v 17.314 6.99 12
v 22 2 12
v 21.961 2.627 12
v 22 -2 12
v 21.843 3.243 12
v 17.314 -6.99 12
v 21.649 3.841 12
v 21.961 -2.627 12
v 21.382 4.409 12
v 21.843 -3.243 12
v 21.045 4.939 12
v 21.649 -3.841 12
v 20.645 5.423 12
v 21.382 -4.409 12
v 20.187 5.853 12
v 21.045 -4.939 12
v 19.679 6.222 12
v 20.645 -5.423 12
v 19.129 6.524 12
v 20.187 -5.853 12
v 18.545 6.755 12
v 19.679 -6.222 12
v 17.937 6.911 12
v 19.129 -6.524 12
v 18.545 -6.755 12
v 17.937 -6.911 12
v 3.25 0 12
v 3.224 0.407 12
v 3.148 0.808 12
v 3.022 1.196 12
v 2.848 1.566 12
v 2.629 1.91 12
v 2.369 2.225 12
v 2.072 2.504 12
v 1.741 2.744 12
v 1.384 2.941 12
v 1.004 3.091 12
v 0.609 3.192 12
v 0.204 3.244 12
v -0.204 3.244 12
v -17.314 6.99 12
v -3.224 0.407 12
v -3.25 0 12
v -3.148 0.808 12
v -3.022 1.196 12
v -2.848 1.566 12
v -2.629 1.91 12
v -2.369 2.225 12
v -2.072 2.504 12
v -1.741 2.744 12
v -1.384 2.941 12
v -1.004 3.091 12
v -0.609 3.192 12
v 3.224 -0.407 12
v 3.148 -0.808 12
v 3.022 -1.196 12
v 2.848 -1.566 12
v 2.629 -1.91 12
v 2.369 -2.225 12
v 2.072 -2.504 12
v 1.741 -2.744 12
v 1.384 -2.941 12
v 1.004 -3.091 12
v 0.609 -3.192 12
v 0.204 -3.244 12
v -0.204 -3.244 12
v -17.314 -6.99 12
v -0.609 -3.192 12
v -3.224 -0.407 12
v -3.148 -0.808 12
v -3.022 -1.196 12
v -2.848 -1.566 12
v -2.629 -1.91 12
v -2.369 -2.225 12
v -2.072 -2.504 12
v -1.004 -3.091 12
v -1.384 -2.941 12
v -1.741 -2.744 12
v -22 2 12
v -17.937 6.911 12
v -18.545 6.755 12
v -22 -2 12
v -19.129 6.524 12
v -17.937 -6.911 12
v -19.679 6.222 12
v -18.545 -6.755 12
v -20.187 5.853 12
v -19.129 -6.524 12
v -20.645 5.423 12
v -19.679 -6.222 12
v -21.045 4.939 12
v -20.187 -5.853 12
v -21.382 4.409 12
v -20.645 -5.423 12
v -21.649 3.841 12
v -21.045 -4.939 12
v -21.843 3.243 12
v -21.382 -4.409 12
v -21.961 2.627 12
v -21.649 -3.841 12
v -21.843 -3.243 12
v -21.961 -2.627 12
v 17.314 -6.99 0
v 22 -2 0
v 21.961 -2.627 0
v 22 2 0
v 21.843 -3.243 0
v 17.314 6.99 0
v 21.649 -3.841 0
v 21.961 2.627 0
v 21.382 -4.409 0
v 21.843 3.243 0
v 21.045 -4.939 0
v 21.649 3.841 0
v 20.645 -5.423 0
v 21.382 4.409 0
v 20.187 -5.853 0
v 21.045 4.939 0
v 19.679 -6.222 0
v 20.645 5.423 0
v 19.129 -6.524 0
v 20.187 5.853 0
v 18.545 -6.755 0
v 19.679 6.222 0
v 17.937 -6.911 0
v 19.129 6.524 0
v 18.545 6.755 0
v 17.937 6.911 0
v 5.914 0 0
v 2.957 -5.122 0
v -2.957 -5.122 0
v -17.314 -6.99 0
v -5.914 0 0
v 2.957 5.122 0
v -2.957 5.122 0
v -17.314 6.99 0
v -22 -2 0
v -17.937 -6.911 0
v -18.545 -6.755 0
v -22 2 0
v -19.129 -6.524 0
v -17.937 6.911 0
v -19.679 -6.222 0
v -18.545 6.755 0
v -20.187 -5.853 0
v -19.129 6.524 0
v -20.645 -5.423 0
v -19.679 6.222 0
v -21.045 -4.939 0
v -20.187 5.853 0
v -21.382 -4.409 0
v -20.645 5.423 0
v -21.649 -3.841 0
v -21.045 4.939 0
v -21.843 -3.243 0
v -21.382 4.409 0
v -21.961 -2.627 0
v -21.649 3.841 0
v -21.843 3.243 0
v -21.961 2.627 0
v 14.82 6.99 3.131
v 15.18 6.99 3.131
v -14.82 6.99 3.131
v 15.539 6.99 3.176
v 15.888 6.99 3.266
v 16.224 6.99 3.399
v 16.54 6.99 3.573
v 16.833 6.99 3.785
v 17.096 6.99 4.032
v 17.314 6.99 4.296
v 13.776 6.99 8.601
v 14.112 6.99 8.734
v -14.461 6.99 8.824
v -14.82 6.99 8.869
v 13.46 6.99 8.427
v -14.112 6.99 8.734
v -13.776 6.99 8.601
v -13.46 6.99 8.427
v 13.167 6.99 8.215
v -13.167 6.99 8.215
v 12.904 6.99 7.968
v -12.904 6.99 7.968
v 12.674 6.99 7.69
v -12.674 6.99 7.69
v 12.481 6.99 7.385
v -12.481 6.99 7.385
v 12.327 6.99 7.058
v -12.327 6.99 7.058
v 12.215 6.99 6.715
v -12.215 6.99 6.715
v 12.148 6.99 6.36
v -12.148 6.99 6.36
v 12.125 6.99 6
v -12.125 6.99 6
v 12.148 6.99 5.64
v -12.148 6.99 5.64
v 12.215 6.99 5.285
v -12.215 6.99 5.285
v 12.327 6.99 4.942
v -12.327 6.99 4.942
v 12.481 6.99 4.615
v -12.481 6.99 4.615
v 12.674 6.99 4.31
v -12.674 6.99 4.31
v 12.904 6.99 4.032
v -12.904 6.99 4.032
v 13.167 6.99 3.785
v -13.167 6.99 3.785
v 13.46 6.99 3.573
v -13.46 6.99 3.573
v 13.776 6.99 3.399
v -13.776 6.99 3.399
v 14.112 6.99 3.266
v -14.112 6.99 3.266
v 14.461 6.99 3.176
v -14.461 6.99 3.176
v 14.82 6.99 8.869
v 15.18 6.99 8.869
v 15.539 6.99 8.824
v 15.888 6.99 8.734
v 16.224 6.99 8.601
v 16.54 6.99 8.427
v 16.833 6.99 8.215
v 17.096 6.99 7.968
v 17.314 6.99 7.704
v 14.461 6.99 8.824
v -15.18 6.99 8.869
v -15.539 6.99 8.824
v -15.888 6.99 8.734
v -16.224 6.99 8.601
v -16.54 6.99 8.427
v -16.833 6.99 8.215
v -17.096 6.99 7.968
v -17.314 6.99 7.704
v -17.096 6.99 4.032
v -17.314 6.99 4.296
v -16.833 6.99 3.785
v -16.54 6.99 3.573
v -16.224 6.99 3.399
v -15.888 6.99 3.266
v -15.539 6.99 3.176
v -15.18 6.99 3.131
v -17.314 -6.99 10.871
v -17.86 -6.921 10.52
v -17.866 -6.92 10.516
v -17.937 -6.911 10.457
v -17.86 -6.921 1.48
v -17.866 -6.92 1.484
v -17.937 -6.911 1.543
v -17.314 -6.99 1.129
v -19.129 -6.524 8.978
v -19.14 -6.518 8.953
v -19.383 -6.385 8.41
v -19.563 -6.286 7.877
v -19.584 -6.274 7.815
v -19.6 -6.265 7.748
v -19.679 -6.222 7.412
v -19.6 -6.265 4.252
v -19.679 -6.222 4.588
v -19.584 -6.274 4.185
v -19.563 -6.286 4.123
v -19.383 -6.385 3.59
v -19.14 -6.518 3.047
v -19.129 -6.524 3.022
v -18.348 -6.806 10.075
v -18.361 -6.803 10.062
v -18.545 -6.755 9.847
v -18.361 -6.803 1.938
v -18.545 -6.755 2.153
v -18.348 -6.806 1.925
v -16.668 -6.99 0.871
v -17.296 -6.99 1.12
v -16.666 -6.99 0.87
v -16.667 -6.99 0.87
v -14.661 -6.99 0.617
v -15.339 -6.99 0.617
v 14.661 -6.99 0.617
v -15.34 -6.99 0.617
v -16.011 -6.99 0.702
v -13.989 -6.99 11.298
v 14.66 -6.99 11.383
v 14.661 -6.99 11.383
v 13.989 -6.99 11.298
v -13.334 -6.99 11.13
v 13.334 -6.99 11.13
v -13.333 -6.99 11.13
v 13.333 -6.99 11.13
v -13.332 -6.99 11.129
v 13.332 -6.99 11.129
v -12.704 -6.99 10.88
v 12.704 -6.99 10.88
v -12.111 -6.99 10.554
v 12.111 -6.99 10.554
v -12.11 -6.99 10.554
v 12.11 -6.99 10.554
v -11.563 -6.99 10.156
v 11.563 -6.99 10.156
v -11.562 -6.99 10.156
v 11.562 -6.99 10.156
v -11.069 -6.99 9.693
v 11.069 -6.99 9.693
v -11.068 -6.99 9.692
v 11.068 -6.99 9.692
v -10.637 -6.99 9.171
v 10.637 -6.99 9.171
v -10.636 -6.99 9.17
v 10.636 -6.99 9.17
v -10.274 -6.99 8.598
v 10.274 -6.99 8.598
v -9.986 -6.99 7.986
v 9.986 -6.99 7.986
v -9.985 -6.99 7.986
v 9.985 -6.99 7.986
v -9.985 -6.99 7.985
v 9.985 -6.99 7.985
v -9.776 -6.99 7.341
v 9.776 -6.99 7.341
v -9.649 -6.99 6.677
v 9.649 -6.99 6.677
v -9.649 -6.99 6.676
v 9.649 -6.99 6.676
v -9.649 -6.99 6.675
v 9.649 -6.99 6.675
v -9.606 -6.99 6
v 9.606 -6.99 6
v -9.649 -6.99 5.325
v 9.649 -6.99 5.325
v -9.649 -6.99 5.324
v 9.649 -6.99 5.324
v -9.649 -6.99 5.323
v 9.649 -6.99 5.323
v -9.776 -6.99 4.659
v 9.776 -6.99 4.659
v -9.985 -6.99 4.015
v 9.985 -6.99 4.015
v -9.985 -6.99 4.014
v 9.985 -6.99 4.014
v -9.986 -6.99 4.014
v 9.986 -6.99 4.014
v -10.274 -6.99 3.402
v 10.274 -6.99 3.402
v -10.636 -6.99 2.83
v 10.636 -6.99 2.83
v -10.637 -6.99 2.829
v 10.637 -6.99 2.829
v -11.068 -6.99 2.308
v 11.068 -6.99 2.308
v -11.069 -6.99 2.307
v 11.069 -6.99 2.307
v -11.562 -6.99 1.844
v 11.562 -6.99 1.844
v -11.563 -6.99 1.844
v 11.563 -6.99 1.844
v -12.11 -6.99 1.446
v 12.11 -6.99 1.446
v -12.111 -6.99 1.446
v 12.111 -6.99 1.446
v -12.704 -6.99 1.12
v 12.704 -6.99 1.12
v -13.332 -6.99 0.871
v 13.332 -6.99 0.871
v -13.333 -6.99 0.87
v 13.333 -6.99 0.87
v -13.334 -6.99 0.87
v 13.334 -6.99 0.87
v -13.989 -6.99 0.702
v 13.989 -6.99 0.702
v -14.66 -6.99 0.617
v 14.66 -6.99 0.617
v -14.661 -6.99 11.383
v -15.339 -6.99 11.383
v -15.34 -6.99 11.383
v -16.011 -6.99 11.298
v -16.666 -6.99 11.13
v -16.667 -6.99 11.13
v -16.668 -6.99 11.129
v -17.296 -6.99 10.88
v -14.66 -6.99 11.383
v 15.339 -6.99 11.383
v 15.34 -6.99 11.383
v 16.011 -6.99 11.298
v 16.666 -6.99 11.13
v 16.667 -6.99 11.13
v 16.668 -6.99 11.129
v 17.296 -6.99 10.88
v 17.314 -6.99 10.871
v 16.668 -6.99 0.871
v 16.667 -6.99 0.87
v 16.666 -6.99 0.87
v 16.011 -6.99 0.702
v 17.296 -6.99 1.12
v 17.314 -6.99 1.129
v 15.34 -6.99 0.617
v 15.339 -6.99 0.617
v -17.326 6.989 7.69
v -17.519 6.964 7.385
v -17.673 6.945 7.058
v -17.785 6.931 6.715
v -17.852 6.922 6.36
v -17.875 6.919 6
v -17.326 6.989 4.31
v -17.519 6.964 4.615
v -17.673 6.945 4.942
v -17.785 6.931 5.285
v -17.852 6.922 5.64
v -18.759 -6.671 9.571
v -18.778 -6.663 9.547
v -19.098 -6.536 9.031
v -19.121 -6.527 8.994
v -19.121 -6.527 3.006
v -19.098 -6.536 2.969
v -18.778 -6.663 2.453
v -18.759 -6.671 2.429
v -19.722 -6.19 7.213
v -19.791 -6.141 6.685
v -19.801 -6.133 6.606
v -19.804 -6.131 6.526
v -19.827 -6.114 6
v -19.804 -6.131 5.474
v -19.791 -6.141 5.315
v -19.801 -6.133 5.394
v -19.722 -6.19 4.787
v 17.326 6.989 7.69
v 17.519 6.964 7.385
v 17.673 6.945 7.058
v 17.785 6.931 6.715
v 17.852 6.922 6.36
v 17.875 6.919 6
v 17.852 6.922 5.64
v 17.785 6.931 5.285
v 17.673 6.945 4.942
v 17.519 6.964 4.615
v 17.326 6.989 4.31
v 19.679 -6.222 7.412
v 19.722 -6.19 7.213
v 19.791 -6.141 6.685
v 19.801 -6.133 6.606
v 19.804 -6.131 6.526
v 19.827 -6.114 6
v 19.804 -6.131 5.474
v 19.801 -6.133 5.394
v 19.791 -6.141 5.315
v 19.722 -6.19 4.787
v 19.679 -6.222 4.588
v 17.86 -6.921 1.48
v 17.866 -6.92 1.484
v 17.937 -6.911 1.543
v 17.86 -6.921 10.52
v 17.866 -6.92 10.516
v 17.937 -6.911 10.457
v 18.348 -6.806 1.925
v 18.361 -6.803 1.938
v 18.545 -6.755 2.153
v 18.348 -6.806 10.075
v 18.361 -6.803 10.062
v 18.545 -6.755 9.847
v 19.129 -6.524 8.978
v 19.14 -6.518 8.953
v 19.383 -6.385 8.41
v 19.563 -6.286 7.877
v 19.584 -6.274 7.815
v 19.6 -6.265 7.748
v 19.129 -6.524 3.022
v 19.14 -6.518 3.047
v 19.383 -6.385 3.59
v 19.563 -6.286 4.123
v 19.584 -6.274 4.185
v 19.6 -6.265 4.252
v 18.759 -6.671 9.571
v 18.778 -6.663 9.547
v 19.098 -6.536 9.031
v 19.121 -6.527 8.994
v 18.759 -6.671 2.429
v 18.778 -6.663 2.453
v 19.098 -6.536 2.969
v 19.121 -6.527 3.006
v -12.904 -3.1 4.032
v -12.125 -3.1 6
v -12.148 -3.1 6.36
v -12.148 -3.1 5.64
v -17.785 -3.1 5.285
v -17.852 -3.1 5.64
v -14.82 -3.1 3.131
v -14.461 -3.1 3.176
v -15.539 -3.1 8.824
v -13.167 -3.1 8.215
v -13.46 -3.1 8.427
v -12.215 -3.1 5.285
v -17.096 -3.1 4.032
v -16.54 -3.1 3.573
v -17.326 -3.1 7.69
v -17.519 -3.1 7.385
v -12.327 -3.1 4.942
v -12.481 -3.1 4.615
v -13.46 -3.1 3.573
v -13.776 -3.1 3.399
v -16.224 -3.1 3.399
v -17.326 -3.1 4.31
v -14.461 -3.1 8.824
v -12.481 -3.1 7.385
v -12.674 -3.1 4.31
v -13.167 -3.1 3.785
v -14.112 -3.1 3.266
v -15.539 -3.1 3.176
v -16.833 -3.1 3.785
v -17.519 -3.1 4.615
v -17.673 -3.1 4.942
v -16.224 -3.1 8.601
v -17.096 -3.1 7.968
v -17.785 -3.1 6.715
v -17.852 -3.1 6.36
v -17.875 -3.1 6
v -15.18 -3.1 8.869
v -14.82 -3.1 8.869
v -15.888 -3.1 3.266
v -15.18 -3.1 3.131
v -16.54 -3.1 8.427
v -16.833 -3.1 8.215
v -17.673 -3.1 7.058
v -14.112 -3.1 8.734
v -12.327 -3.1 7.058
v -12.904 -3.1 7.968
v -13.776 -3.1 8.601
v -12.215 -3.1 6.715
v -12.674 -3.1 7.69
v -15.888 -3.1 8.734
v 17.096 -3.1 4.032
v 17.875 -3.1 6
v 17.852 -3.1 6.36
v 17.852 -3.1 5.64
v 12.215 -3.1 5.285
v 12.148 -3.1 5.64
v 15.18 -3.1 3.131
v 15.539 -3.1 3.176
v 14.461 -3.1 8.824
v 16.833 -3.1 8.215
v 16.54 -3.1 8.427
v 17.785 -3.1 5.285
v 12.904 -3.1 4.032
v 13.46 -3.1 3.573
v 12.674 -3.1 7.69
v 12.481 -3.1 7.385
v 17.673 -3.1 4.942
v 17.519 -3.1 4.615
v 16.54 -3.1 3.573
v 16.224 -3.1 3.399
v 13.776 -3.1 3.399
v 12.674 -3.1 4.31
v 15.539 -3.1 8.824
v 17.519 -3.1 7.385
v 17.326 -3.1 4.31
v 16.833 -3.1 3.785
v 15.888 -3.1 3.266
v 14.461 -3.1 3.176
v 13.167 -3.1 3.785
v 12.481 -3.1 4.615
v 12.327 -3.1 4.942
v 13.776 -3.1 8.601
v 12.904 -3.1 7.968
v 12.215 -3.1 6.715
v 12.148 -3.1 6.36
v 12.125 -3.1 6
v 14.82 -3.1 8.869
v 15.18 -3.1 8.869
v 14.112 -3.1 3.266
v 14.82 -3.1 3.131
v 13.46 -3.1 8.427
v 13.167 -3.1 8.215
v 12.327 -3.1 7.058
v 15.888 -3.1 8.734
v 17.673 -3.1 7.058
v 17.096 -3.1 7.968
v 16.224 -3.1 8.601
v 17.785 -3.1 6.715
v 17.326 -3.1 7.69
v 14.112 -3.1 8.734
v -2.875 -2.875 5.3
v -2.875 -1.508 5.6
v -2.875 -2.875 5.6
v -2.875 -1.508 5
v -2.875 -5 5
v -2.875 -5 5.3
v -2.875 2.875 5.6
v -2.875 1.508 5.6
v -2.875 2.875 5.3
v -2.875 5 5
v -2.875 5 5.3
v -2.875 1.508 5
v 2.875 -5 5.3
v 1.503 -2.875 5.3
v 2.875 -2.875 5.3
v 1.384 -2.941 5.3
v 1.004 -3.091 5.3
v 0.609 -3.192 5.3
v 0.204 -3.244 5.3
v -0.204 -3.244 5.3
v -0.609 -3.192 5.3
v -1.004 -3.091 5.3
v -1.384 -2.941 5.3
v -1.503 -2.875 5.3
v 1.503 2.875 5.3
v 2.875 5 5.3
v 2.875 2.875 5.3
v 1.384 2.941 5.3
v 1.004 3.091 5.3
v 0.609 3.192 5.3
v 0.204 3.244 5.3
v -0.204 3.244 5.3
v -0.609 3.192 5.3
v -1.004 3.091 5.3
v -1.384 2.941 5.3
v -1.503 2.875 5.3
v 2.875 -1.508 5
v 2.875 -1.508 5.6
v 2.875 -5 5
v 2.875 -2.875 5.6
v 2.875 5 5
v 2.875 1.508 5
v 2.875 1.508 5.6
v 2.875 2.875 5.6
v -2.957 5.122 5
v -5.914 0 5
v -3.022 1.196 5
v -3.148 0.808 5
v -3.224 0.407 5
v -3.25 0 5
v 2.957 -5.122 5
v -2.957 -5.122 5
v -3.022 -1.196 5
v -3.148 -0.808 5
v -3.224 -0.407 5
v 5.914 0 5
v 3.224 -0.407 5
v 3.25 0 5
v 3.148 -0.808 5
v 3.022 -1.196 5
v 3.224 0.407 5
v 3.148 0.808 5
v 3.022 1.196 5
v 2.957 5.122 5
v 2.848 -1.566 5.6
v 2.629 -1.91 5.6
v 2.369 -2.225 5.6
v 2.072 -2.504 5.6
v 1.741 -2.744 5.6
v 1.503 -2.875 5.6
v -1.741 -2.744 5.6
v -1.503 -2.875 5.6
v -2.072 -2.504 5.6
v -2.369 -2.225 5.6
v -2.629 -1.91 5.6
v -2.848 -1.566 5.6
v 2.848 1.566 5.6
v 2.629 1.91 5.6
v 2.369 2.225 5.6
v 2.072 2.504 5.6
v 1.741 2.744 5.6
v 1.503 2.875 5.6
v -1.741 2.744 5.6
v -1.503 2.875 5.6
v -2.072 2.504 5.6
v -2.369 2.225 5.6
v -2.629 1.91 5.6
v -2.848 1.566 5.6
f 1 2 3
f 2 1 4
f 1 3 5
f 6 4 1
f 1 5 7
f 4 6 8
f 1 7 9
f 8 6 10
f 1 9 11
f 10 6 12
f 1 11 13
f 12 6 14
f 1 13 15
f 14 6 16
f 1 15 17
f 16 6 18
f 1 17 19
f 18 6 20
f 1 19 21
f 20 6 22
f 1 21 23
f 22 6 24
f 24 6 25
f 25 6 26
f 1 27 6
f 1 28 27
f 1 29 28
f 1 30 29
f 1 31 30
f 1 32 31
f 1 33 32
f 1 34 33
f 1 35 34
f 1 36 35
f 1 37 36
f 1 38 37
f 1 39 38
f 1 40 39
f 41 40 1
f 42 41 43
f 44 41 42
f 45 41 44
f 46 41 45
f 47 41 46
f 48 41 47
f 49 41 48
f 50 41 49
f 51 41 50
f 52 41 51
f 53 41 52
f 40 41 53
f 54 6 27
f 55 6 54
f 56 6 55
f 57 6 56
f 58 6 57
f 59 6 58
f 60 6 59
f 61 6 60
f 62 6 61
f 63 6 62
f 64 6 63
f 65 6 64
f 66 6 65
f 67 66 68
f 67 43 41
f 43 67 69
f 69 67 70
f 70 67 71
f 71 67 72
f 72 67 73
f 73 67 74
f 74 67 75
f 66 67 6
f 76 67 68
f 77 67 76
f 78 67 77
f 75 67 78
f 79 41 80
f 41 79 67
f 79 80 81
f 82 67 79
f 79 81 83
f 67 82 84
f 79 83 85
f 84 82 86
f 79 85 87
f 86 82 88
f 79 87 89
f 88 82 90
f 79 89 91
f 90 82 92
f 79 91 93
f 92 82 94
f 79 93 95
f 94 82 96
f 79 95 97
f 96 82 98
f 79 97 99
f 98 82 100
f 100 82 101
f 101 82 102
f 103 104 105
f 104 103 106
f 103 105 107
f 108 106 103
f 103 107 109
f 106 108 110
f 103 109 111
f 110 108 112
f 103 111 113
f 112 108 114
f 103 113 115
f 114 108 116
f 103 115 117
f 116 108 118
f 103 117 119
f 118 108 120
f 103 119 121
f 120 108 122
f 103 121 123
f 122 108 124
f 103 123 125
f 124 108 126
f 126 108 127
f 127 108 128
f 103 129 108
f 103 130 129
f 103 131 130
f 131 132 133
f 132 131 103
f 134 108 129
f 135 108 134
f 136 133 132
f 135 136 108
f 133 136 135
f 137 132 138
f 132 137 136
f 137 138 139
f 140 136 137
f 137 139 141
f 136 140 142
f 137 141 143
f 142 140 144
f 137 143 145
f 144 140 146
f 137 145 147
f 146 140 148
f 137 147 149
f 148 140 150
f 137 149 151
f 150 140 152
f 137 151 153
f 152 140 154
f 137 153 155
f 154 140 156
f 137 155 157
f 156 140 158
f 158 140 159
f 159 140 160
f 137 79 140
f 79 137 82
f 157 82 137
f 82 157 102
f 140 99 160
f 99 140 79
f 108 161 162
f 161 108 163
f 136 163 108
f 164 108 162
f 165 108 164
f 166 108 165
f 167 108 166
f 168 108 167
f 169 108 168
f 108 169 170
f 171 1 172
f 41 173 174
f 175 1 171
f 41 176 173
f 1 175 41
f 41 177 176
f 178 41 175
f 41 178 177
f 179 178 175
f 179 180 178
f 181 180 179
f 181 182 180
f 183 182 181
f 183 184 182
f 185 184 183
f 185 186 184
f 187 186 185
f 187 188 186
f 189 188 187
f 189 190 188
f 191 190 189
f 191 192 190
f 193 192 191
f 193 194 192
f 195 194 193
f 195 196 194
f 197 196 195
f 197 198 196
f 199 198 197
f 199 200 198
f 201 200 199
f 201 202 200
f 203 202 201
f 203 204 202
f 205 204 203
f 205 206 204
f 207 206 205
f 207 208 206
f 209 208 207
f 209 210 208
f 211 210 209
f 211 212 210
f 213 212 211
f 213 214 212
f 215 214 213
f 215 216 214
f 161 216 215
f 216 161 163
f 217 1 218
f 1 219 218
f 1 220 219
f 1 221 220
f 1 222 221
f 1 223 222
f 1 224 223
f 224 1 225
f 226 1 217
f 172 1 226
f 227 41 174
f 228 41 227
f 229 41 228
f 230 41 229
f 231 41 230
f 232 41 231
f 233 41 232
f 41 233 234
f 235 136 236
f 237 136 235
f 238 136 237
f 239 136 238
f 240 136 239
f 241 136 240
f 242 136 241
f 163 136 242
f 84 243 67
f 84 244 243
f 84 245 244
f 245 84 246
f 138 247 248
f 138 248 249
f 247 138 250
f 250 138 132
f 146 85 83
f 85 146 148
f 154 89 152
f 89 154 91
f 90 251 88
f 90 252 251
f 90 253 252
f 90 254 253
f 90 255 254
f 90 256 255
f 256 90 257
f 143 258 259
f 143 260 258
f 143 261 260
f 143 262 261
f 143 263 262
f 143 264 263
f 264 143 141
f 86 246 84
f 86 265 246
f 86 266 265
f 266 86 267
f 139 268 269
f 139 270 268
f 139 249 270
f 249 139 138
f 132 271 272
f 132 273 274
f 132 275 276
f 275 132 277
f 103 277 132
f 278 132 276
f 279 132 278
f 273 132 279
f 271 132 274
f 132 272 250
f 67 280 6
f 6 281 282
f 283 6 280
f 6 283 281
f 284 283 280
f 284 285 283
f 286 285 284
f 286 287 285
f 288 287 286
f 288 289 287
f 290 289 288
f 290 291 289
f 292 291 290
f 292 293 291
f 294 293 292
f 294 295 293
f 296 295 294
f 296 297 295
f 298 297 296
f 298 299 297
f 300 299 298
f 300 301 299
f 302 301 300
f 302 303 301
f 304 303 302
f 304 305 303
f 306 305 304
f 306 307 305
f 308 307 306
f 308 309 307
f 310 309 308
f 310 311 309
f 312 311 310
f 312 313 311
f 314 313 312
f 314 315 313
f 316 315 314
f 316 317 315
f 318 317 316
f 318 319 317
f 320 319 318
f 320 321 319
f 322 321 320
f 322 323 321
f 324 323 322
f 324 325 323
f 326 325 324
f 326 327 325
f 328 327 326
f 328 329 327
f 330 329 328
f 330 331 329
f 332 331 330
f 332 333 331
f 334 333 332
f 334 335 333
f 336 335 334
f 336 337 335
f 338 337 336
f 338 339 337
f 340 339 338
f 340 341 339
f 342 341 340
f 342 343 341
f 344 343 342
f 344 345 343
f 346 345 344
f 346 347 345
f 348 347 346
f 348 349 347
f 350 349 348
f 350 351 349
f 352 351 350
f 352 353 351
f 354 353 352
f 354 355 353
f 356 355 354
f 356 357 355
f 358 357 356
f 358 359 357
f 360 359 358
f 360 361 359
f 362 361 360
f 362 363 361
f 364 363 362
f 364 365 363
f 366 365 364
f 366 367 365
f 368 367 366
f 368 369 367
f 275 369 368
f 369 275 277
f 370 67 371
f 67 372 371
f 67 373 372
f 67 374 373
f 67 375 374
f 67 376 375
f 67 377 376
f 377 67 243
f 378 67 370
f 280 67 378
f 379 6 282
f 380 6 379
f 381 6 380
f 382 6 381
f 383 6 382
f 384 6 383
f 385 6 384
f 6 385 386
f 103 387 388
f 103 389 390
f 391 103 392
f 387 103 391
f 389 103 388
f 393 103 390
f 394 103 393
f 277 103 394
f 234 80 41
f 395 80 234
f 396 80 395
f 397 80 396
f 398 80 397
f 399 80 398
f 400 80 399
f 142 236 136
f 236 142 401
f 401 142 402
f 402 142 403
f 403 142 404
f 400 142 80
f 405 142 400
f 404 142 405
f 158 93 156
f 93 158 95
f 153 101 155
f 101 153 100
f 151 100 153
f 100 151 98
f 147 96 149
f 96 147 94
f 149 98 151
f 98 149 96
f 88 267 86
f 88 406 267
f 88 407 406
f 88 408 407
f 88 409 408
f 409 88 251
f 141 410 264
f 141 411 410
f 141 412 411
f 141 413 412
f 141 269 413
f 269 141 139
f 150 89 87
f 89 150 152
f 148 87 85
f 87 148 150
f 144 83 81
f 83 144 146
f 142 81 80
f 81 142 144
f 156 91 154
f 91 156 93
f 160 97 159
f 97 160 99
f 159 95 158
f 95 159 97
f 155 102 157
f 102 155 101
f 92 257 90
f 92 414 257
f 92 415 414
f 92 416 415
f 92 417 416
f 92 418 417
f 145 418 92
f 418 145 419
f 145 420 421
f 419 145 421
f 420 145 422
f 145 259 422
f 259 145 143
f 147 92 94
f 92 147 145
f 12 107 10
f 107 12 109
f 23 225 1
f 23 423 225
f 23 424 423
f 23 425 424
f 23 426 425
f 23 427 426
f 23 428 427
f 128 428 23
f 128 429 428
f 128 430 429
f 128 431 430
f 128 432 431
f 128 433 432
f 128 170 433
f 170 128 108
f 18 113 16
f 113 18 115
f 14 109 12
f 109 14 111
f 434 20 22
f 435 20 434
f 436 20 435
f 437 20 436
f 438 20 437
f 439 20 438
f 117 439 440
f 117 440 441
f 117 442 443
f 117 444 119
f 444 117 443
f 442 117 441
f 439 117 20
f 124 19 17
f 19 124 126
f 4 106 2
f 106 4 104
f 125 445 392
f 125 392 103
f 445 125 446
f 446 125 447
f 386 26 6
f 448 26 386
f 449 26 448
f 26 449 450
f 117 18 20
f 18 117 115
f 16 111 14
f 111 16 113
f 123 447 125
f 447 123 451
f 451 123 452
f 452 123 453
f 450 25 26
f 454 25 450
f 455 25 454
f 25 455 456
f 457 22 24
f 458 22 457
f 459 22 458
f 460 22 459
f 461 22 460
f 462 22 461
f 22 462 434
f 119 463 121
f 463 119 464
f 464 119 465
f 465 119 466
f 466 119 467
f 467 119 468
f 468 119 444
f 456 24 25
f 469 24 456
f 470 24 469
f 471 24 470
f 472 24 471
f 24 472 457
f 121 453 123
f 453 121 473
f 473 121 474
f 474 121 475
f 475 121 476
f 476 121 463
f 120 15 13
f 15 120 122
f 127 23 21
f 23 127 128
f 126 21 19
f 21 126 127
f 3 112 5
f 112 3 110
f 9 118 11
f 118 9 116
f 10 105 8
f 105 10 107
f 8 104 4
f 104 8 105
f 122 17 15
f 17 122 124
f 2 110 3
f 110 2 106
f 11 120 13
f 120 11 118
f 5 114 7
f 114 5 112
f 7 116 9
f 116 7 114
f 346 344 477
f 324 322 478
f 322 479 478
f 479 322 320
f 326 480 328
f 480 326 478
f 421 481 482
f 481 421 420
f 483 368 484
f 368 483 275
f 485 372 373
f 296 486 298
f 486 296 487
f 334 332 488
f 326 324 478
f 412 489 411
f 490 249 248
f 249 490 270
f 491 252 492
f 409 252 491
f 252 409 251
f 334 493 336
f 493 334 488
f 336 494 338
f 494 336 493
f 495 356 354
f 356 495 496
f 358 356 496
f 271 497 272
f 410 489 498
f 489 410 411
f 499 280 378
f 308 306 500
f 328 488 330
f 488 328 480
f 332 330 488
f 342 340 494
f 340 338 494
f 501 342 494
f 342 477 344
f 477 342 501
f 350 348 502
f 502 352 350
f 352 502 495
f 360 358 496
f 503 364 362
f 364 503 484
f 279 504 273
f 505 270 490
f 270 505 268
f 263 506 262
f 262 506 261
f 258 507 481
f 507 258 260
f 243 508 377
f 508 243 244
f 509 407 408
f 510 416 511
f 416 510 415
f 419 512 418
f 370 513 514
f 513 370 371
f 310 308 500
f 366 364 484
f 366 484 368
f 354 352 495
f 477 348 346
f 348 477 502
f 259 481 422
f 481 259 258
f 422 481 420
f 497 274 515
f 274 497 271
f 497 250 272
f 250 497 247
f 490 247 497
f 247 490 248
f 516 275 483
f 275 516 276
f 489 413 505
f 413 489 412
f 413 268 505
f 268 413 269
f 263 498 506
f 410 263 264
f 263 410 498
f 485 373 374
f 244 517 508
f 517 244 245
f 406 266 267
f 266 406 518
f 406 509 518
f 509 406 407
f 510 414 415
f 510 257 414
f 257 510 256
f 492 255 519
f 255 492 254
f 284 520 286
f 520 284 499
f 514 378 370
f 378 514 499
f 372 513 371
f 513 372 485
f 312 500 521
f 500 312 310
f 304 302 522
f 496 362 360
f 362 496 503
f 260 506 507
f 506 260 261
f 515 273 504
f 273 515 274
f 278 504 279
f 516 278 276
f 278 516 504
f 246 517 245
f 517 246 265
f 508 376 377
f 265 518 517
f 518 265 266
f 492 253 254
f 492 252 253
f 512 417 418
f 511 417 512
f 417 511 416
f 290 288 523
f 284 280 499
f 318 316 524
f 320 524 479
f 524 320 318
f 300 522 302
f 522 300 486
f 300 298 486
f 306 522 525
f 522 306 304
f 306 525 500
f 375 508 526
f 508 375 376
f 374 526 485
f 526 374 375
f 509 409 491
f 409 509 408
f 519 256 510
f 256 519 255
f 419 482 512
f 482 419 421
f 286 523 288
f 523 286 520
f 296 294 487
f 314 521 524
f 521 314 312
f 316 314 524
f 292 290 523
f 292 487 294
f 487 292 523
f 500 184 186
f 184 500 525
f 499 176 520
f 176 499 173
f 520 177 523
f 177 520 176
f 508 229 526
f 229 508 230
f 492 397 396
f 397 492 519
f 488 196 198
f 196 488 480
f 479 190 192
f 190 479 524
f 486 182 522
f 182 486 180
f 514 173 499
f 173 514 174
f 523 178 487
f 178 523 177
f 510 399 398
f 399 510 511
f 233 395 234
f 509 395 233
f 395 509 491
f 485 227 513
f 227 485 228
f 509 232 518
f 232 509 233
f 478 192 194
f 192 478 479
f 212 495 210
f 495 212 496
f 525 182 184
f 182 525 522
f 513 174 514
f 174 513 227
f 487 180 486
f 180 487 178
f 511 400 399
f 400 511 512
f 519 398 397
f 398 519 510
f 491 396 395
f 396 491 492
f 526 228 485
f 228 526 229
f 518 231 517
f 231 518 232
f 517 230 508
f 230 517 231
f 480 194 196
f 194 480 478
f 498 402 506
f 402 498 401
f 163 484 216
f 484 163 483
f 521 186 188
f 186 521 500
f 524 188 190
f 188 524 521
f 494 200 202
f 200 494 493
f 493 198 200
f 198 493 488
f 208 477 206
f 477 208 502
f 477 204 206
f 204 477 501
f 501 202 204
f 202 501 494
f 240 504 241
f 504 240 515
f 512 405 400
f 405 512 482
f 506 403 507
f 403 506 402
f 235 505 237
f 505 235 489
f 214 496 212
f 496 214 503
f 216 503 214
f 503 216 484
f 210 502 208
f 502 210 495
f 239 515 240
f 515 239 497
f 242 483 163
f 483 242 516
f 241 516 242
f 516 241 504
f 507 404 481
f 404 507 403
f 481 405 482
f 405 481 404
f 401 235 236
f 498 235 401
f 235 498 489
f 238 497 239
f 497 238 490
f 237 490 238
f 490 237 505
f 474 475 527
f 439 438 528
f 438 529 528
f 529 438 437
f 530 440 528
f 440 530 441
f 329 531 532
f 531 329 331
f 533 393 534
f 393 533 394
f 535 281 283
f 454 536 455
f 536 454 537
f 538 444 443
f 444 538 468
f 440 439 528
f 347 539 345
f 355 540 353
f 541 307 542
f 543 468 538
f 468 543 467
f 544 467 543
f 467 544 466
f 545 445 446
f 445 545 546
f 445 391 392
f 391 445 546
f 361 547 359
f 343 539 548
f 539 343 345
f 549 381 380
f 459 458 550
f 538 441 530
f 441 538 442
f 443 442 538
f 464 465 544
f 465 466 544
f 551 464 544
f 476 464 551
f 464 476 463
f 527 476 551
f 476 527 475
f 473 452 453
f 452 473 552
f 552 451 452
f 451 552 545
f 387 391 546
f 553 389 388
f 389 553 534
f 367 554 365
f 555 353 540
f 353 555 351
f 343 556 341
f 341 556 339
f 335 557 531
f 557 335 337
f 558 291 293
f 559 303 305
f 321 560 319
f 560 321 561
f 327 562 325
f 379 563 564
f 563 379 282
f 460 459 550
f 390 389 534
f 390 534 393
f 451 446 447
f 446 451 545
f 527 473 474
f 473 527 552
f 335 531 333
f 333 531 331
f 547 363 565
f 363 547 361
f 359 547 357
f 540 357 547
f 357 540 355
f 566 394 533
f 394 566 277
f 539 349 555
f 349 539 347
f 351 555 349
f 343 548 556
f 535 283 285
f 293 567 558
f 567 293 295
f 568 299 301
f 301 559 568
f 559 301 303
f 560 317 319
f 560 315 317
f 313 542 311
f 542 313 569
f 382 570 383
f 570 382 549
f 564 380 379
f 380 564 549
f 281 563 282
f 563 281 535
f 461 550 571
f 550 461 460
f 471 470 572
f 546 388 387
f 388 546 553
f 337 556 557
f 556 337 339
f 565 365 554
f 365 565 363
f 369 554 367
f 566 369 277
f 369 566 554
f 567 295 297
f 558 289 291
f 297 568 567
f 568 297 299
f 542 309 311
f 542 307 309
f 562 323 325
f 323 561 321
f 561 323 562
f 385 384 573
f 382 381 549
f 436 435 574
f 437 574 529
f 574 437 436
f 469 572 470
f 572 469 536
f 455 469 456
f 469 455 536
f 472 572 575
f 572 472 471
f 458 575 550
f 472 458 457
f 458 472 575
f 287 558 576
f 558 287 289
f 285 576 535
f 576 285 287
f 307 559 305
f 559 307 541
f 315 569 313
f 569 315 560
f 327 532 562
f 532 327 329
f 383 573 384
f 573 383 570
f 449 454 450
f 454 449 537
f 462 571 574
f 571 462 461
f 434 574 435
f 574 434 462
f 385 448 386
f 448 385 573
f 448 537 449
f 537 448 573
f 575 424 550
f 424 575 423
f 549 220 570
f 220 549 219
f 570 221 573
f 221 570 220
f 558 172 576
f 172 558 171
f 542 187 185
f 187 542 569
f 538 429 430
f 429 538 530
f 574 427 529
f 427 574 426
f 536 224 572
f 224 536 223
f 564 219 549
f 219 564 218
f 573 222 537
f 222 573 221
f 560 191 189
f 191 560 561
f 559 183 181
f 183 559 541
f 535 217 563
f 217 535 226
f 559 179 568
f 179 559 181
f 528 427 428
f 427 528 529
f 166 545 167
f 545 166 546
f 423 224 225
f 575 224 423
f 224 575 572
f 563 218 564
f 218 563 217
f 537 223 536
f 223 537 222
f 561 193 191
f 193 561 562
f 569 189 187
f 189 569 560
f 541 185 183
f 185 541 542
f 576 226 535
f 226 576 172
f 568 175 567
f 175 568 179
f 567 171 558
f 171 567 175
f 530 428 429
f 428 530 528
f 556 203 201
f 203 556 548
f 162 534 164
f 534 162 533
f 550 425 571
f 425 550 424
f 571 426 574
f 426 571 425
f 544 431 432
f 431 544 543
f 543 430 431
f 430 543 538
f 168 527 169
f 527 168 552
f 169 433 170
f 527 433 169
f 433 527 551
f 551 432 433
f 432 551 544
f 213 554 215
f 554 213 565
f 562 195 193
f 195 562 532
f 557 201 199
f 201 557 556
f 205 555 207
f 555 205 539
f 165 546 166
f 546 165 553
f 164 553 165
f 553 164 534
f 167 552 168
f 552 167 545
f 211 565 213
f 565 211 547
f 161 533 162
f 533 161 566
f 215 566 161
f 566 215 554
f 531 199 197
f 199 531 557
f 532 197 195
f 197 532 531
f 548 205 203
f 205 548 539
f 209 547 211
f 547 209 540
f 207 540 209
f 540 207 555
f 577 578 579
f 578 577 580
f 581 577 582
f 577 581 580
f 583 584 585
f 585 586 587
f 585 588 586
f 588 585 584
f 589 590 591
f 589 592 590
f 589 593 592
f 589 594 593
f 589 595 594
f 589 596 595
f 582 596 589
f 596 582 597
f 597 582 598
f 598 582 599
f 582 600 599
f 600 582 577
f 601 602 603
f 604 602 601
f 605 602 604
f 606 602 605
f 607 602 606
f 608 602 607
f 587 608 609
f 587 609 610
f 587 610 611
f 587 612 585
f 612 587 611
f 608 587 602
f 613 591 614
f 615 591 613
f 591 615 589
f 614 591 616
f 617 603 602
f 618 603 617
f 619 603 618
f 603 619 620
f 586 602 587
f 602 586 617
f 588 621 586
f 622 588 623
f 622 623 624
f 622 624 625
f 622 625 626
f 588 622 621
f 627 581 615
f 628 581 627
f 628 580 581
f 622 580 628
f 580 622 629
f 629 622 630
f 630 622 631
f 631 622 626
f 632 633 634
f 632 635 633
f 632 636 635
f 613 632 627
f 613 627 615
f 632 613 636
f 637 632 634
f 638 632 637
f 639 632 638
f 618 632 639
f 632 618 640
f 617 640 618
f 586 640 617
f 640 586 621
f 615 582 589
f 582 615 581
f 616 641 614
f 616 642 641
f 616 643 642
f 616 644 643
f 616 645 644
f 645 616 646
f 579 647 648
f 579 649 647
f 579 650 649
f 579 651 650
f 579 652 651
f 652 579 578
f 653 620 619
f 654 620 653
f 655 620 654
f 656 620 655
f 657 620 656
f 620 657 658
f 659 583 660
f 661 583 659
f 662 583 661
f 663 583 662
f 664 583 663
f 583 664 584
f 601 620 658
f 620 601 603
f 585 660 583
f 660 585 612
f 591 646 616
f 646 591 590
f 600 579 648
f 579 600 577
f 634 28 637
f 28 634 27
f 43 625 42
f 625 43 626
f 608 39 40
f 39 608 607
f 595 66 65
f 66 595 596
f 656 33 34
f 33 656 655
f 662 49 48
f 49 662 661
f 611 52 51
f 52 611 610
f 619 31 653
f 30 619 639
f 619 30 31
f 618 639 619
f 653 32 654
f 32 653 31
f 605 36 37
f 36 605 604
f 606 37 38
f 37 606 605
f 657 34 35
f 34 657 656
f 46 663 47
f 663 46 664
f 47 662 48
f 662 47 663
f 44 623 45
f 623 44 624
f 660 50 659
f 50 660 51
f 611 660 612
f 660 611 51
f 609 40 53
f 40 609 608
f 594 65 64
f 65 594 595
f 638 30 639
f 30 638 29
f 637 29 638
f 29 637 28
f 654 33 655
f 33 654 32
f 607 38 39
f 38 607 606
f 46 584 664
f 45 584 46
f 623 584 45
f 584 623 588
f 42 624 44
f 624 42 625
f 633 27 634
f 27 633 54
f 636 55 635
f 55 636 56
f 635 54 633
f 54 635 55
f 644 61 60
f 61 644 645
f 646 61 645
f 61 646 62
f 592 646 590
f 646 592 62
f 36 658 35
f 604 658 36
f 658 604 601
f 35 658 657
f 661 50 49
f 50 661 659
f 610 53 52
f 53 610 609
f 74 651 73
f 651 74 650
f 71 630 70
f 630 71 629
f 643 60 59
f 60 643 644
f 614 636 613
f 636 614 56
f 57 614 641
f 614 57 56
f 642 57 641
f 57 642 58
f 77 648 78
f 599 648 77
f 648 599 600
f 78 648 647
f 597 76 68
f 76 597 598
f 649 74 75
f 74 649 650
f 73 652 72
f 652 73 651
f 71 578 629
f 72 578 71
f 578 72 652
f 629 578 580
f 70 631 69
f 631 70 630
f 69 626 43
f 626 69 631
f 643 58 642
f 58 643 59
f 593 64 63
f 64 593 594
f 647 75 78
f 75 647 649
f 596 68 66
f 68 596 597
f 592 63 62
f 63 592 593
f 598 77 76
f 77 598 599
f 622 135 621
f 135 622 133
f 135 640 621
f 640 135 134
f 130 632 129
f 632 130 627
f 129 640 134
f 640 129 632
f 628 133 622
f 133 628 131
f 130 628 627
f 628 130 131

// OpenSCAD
$fn = 50;


difference() {
	union() {
		cylinder(h = 12, r = 7.0000000000);
		translate(v = [-7.5000000000, 0.0000000000, 0]) {
			hull() {
				translate(v = [-9.5000000000, 2.0000000000, 0]) {
					cylinder(h = 12, r = 5);
				}
				translate(v = [9.5000000000, 2.0000000000, 0]) {
					cylinder(h = 12, r = 5);
				}
				translate(v = [-9.5000000000, -2.0000000000, 0]) {
					cylinder(h = 12, r = 5);
				}
				translate(v = [9.5000000000, -2.0000000000, 0]) {
					cylinder(h = 12, r = 5);
				}
			}
		}
		translate(v = [7.5000000000, 0.0000000000, 0]) {
			hull() {
				translate(v = [-9.5000000000, 2.0000000000, 0]) {
					cylinder(h = 12, r = 5);
				}
				translate(v = [9.5000000000, 2.0000000000, 0]) {
					cylinder(h = 12, r = 5);
				}
				translate(v = [-9.5000000000, -2.0000000000, 0]) {
					cylinder(h = 12, r = 5);
				}
				translate(v = [9.5000000000, -2.0000000000, 0]) {
					cylinder(h = 12, r = 5);
				}
			}
		}
	}
	union() {
		translate(v = [-15.0000000000, -7.0000000000, 6.0000000000]) {
			rotate(a = [90, 0, 0]) {
				difference() {
					union() {
						#translate(v = [0, 0, -14.0000000000]) {
							cylinder(h = 14, r = 2.6000000000);
						}
						#translate(v = [0, 0, -3.9000000000]) {
							cylinder(h = 3.9000000000, r1 = 2.8750000000, r2 = 5.4000000000);
						}
						#translate(v = [0, 0, -14.0000000000]) {
							cylinder(h = 14, r = 2.8750000000);
						}
						#translate(v = [0, 0, -14.0000000000]) {
							cylinder(h = 14, r = 2.6000000000);
						}
					}
					union();
				}
			}
		}
		translate(v = [15.0000000000, -7.0000000000, 6.0000000000]) {
			rotate(a = [90, 0, 0]) {
				difference() {
					union() {
						#translate(v = [0, 0, -14.0000000000]) {
							cylinder(h = 14, r = 2.6000000000);
						}
						#translate(v = [0, 0, -3.9000000000]) {
							cylinder(h = 3.9000000000, r1 = 2.8750000000, r2 = 5.4000000000);
						}
						#translate(v = [0, 0, -14.0000000000]) {
							cylinder(h = 14, r = 2.8750000000);
						}
						#translate(v = [0, 0, -14.0000000000]) {
							cylinder(h = 14, r = 2.6000000000);
						}
					}
					union();
				}
			}
		}
		translate(v = [0.0000000000, 0.0000000000, 0]) {
			rotate(a = [0, 0, 0]) {
				difference() {
					union() {
						#translate(v = [-2.8750000000, -5.0000000000, -0.3000000000]) {
							cube(size = [5.7500000000, 10, 0.3000000000]);
						}
						#translate(v = [-2.8750000000, -2.8750000000, -0.6000000000]) {
							cube(size = [5.7500000000, 5.7500000000, 0.3000000000]);
						}
						#translate(v = [-2.8750000000, -5.0000000000, 5]) {
							cube(size = [5.7500000000, 10, 0.3000000000]);
						}
						#translate(v = [-2.8750000000, -2.8750000000, 5.3000000000]) {
							cube(size = [5.7500000000, 5.7500000000, 0.3000000000]);
						}
						#translate(v = [0, 0, -100.0000000000]) {
							cylinder(h = 200, r = 3.2500000000);
						}
						#linear_extrude(height = 5) {
							polygon(points = [[5.9142500000, 0.0000000000], [2.9571250000, 5.1218907443], [-2.9571250000, 5.1218907443], [-5.9142500000, 0.0000000000], [-2.9571250000, -5.1218907443], [2.9571250000, -5.1218907443]]);
						}
						#translate(v = [-2.8750000000, -5.0000000000, -0.3000000000]) {
							cube(size = [5.7500000000, 10, 0.3000000000]);
						}
						#translate(v = [-2.8750000000, -2.8750000000, -0.6000000000]) {
							cube(size = [5.7500000000, 5.7500000000, 0.3000000000]);
						}
						#translate(v = [-2.8750000000, -5.0000000000, 5]) {
							cube(size = [5.7500000000, 10, 0.3000000000]);
						}
						#translate(v = [-2.8750000000, -2.8750000000, 5.3000000000]) {
							cube(size = [5.7500000000, 5.7500000000, 0.3000000000]);
						}
						#translate(v = [0, 0, -100.0000000000]) {
							cylinder(h = 200, r = 3.2500000000);
						}
						#translate(v = [-2.8750000000, -5.0000000000, -0.3000000000]) {
							cube(size = [5.7500000000, 10, 0.3000000000]);
						}
						#translate(v = [-2.8750000000, -2.8750000000, -0.6000000000]) {
							cube(size = [5.7500000000, 5.7500000000, 0.3000000000]);
						}
						#translate(v = [-2.8750000000, -5.0000000000, 5]) {
							cube(size = [5.7500000000, 10, 0.3000000000]);
						}
						#translate(v = [-2.8750000000, -2.8750000000, 5.3000000000]) {
							cube(size = [5.7500000000, 5.7500000000, 0.3000000000]);
						}
						#translate(v = [0, 0, -100.0000000000]) {
							cylinder(h = 200, r = 3.2500000000);
						}
					}
					union();
				}
			}
		}
		translate(v = [0, 0, -100]) {
			cylinder(h = 200, r = 3.2500000000);
		}
		translate(v = [0, 0, -100]) {
			cylinder(h = 200, r = 1.8000000000);
		}
	}
}
